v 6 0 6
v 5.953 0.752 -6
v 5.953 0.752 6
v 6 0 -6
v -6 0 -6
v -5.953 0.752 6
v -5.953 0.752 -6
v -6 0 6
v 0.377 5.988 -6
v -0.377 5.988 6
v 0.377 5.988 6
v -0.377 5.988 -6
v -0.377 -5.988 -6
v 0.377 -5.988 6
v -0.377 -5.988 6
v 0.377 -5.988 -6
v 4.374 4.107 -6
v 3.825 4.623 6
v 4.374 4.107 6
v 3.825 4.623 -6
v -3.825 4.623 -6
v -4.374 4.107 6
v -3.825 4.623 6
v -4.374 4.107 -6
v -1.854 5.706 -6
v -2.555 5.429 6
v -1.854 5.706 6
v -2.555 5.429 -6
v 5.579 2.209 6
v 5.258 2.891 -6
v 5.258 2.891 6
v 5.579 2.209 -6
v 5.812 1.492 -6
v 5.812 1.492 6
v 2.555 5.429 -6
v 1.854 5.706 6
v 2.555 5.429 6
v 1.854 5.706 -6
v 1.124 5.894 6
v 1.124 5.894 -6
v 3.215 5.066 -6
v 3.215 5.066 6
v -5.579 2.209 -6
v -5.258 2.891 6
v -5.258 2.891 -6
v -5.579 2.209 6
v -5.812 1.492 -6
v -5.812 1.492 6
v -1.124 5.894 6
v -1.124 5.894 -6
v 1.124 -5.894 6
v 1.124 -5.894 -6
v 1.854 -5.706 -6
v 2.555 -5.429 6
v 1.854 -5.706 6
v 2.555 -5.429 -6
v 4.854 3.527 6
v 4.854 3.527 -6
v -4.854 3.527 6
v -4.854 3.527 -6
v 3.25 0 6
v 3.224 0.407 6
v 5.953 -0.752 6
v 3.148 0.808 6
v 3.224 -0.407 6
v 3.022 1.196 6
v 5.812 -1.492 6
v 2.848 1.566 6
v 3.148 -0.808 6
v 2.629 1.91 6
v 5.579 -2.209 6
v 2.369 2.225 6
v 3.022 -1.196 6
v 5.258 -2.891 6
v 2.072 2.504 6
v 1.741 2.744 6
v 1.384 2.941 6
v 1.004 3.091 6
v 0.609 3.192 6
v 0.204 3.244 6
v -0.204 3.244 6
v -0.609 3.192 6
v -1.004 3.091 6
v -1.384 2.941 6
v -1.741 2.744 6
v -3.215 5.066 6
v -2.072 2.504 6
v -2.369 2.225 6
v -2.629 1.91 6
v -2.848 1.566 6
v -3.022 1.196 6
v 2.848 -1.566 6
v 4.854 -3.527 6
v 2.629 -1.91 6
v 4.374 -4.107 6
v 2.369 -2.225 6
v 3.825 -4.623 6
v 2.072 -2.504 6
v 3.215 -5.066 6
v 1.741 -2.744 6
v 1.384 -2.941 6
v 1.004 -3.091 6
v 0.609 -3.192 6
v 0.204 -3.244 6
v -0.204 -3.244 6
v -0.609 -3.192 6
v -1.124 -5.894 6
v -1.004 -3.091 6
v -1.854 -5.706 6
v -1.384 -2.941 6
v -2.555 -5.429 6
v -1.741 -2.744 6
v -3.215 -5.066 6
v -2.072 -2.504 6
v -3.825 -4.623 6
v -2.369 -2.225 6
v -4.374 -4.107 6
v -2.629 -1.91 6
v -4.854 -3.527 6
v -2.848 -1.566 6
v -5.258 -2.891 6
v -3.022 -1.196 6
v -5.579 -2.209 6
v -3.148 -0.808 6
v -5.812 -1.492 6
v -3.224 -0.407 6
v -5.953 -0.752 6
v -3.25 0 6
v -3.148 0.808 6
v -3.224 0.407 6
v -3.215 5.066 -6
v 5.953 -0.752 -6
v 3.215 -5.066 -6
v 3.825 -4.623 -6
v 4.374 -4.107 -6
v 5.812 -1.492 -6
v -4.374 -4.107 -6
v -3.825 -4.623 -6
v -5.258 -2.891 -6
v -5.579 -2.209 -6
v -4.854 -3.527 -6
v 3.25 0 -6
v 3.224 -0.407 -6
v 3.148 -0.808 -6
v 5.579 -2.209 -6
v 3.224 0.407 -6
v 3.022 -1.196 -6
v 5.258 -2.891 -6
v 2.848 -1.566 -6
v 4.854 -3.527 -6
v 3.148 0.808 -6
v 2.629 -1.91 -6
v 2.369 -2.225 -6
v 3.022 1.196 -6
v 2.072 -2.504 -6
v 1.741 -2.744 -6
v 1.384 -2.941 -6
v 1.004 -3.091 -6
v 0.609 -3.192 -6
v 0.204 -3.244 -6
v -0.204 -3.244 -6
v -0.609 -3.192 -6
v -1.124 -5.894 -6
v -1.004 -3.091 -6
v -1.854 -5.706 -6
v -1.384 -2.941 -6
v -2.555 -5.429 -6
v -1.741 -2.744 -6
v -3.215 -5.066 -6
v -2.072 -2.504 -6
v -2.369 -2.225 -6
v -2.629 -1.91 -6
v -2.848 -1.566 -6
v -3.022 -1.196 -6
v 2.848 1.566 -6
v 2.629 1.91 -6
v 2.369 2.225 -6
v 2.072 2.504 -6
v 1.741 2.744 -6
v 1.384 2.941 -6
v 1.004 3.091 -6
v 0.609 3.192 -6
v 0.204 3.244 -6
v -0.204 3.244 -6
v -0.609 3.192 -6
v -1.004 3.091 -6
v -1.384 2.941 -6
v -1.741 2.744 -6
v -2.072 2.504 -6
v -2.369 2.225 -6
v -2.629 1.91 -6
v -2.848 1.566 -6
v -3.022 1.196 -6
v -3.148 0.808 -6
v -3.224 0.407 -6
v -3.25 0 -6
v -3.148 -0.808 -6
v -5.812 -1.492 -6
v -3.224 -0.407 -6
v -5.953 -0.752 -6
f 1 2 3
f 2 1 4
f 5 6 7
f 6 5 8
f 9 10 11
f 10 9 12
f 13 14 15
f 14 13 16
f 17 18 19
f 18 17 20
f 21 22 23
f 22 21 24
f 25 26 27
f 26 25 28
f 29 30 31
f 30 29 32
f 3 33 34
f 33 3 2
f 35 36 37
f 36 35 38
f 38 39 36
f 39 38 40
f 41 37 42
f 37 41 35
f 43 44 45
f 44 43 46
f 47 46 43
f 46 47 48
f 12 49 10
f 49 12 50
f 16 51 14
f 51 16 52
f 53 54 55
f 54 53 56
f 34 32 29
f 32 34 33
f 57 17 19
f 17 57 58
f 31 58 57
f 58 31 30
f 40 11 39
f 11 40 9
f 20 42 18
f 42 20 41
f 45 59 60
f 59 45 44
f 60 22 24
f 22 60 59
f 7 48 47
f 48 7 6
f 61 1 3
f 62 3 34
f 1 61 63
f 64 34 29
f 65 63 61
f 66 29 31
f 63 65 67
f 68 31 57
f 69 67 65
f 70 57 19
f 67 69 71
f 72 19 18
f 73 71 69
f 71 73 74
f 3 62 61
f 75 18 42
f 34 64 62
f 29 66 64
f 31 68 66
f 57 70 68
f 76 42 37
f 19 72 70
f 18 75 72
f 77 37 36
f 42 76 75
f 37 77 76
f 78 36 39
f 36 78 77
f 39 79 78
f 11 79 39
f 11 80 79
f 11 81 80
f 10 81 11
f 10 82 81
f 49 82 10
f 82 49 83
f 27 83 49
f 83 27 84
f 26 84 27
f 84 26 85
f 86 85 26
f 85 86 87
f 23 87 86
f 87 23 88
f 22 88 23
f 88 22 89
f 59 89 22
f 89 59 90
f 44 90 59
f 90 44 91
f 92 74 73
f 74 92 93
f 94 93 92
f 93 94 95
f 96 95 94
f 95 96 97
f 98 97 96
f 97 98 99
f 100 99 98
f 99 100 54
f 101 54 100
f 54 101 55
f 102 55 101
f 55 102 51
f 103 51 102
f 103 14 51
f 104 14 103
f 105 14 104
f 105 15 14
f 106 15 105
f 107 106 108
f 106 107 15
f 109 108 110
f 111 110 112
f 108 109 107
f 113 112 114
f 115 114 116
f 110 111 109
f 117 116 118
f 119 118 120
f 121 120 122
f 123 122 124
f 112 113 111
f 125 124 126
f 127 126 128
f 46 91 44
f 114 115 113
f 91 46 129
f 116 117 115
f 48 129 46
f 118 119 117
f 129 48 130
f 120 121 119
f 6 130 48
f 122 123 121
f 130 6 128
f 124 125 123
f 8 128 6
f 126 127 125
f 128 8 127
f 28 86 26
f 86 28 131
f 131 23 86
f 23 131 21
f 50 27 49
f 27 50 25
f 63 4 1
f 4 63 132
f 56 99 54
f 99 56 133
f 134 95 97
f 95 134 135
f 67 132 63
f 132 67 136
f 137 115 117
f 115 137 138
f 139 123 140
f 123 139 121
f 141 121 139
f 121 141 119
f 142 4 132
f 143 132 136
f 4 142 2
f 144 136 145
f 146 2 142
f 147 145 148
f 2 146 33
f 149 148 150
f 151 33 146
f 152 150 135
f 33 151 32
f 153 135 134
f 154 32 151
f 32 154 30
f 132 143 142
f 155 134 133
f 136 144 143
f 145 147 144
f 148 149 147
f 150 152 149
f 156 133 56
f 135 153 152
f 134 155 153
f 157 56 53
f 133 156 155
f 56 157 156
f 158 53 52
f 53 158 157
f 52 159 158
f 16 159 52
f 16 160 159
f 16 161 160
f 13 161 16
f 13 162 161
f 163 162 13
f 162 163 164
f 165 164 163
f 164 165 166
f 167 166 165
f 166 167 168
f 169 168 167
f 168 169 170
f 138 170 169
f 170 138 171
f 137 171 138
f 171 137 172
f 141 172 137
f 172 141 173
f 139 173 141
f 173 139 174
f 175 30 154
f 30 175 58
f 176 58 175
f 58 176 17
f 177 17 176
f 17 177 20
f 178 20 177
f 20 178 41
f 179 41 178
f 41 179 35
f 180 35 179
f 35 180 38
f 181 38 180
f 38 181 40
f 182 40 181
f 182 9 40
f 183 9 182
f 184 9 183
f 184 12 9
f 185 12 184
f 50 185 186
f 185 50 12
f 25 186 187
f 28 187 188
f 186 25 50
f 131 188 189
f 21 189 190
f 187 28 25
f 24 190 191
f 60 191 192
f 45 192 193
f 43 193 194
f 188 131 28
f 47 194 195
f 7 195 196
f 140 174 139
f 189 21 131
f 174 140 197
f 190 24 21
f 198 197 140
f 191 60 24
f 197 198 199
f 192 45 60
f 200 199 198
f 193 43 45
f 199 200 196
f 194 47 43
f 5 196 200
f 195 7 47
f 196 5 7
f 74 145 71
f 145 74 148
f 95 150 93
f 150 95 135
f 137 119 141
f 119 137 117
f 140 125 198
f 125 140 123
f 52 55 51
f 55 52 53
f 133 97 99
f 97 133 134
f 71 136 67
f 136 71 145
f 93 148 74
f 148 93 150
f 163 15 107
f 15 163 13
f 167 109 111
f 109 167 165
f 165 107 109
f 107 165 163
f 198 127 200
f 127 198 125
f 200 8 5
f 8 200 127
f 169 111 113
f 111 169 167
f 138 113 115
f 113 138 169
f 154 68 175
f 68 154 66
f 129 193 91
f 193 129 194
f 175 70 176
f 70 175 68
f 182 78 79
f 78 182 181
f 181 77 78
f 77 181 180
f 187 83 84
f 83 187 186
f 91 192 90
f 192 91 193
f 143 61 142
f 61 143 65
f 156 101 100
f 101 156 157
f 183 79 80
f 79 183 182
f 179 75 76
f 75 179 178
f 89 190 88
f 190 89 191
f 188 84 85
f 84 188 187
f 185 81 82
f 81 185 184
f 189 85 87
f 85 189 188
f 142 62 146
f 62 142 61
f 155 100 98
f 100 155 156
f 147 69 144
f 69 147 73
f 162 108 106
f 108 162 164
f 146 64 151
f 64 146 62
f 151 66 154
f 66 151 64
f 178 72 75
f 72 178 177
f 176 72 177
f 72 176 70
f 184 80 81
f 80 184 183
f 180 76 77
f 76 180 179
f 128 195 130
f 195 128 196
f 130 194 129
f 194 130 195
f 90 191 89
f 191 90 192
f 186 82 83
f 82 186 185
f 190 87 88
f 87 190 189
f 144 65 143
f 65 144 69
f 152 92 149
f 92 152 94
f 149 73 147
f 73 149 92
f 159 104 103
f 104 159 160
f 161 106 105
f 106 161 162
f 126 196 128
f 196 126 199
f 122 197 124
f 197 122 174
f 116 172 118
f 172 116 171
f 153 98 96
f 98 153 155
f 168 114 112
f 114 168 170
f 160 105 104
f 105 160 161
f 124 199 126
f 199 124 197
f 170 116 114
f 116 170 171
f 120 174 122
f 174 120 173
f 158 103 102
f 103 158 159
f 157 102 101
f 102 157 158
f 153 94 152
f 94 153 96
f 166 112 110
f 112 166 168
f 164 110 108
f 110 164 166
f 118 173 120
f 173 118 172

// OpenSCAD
$fn = 50;


difference() {
	union() {
		translate(v = [0, 0, -6.0000000000]) {
			cylinder(h = 12, r = 6.0000000000);
		}
	}
	union() {
		translate(v = [0, 0, -100.0000000000]) {
			cylinder(h = 200, r = 3.2500000000);
		}
	}
}
